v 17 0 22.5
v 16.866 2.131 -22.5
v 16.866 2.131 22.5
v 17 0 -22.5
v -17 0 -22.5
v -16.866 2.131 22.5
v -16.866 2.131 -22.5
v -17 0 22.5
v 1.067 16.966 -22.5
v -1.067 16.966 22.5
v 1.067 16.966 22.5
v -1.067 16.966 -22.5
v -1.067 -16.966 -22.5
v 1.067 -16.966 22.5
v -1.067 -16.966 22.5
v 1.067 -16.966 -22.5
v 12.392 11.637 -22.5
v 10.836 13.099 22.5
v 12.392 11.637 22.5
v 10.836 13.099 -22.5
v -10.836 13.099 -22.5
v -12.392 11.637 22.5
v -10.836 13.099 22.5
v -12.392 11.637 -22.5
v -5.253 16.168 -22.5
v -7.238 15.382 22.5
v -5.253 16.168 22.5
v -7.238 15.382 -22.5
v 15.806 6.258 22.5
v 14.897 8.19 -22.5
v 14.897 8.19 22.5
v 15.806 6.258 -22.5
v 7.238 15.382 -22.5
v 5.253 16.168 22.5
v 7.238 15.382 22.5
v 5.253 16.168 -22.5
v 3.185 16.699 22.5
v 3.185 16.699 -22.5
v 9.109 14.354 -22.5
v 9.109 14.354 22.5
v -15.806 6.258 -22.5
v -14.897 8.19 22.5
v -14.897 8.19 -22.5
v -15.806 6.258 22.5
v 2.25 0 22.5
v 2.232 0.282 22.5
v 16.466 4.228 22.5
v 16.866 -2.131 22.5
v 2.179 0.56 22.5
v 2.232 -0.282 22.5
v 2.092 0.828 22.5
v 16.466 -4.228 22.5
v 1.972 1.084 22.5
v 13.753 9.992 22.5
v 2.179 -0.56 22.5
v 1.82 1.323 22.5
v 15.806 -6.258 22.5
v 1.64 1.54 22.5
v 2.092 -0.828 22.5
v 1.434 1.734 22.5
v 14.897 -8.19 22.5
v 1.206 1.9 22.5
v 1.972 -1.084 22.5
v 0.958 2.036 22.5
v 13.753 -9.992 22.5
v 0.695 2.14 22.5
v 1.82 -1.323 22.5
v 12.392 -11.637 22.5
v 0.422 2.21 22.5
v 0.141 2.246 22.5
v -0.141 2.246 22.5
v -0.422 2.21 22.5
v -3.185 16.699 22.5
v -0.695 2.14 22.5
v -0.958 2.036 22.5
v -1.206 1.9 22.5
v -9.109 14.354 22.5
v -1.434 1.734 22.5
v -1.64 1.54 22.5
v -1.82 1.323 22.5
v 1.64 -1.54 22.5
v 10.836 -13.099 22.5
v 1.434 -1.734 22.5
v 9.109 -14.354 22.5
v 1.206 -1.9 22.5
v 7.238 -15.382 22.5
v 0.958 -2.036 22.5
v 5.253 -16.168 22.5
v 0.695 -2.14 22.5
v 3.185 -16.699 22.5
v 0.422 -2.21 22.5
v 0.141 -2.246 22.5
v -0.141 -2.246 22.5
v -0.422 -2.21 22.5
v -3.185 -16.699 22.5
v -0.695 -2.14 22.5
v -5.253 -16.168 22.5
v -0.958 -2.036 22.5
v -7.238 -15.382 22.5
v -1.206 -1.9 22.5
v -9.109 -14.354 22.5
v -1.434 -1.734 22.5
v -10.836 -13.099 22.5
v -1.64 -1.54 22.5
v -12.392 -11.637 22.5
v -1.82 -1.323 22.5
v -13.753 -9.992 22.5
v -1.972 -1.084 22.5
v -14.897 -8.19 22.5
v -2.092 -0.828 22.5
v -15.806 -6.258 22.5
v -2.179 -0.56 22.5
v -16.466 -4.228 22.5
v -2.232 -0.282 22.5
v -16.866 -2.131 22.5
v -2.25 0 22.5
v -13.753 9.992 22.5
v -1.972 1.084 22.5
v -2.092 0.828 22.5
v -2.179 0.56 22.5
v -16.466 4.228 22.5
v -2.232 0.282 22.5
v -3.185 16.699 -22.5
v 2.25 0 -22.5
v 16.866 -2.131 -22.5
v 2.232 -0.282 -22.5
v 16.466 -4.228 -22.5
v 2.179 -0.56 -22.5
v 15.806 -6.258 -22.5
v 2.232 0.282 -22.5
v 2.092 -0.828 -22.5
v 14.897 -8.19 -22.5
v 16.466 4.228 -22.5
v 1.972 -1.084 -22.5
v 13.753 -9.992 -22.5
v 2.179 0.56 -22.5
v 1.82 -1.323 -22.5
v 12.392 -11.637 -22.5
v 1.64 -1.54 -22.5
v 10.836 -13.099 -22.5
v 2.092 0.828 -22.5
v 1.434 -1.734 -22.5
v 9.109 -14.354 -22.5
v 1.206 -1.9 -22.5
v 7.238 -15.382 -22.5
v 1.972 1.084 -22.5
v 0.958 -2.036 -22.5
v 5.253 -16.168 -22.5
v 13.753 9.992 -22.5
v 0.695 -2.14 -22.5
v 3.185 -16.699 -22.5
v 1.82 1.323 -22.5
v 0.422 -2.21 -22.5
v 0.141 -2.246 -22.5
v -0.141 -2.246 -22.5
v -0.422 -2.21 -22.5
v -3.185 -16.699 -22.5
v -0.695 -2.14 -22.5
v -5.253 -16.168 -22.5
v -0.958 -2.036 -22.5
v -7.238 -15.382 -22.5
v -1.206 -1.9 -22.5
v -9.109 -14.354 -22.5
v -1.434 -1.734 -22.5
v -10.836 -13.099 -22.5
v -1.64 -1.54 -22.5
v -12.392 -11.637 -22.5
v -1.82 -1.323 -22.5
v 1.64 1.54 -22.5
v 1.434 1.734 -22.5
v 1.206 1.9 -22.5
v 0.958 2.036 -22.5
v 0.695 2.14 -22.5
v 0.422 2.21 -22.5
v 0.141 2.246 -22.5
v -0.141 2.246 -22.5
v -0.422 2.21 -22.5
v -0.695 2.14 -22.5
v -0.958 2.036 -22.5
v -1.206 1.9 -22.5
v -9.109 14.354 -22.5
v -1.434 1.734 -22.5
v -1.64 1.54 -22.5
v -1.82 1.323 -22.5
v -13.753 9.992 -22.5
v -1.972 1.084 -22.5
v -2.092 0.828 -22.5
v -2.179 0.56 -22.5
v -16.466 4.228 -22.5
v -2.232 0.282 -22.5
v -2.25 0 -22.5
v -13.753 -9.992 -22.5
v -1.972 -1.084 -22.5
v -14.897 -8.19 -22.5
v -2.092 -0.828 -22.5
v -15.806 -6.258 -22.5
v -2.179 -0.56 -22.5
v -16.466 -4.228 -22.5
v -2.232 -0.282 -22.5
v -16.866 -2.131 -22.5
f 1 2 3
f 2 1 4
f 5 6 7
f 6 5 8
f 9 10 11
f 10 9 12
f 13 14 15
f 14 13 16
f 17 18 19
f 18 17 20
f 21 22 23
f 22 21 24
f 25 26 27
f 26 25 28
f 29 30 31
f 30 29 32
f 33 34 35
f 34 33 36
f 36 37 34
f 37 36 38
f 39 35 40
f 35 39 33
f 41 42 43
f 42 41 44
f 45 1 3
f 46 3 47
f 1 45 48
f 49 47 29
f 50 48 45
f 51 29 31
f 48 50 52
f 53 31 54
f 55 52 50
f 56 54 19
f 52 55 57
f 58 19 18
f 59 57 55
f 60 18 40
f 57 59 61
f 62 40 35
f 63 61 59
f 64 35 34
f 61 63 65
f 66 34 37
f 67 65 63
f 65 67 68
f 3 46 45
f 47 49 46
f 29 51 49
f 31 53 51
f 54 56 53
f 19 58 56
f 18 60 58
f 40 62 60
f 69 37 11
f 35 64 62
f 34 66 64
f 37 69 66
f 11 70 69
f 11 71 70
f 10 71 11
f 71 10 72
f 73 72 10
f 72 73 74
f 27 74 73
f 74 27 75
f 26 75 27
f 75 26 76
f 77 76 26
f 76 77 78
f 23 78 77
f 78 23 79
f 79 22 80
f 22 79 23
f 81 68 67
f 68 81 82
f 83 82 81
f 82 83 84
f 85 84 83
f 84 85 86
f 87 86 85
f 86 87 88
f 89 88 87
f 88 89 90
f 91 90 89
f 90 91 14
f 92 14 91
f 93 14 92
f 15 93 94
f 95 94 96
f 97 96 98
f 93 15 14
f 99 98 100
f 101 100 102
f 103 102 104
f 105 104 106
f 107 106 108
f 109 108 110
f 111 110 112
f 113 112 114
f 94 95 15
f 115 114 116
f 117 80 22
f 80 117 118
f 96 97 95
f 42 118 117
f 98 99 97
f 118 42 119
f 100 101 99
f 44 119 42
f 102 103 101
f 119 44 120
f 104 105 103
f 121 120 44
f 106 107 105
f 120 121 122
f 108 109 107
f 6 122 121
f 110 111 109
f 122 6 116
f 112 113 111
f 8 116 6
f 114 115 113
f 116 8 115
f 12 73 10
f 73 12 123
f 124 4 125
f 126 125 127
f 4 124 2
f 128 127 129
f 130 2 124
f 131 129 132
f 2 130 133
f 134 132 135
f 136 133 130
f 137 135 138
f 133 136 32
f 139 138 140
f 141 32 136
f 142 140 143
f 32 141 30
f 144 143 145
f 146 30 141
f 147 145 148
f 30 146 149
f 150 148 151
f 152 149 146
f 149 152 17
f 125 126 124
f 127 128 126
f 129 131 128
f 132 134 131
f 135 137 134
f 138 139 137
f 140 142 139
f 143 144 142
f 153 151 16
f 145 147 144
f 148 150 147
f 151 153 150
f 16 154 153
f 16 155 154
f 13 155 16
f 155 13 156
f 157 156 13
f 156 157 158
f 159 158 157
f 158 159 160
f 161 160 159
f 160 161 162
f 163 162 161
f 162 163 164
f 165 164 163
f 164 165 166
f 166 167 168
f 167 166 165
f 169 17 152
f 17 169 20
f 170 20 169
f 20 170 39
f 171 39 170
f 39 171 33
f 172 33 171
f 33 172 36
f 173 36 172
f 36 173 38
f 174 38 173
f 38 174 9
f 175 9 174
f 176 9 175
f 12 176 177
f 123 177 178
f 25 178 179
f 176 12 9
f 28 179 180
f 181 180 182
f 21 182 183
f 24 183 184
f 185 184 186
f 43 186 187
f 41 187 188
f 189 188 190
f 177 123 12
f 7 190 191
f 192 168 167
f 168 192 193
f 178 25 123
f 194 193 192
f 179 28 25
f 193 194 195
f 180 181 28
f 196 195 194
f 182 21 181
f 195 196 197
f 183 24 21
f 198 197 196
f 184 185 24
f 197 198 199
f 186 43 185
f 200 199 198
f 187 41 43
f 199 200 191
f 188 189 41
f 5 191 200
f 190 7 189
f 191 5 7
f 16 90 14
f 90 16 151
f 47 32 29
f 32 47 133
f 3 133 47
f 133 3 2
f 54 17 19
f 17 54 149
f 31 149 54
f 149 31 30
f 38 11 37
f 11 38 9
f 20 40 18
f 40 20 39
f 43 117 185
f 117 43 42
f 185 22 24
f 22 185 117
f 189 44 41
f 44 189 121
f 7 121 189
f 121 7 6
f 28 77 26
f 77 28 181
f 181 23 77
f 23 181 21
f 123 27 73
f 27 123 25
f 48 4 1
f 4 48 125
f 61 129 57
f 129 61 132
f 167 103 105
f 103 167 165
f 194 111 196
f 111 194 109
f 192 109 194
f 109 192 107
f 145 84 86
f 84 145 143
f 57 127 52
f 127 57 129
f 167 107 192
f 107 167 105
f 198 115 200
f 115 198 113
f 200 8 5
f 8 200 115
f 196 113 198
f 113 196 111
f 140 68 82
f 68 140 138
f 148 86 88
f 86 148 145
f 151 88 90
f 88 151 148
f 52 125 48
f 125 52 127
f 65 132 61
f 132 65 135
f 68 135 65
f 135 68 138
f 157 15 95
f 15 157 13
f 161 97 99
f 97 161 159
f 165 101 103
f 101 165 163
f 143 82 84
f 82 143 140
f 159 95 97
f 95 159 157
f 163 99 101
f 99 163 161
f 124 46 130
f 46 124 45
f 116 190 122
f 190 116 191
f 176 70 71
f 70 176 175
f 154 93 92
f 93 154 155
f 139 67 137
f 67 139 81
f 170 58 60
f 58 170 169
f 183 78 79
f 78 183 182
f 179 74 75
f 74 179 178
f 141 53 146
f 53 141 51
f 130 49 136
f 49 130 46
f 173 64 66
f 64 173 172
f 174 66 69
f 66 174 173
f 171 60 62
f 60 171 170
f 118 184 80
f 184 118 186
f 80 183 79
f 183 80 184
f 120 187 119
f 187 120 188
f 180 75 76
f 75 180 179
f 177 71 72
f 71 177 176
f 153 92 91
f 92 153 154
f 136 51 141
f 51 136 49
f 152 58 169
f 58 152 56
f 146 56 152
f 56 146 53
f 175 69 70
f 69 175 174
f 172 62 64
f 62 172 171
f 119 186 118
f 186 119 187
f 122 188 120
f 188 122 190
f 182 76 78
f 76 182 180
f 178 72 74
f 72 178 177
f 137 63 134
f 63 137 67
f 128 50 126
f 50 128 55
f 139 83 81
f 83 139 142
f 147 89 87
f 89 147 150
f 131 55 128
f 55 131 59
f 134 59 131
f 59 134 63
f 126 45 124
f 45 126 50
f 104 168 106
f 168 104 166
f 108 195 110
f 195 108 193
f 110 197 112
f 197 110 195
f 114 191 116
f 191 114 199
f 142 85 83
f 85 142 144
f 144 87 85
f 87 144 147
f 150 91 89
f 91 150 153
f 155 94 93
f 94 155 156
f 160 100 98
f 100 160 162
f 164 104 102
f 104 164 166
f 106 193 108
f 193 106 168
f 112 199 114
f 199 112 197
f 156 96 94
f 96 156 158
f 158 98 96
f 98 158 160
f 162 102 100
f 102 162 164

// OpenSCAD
$fn = 50;


difference() {
	union() {
		translate(v = [0, 0, -22.5000000000]) {
			cylinder(h = 45, r = 17.0000000000);
		}
	}
	union() {
		translate(v = [0, 0, -100.0000000000]) {
			cylinder(h = 200, r = 2.2500000000);
		}
	}
}
